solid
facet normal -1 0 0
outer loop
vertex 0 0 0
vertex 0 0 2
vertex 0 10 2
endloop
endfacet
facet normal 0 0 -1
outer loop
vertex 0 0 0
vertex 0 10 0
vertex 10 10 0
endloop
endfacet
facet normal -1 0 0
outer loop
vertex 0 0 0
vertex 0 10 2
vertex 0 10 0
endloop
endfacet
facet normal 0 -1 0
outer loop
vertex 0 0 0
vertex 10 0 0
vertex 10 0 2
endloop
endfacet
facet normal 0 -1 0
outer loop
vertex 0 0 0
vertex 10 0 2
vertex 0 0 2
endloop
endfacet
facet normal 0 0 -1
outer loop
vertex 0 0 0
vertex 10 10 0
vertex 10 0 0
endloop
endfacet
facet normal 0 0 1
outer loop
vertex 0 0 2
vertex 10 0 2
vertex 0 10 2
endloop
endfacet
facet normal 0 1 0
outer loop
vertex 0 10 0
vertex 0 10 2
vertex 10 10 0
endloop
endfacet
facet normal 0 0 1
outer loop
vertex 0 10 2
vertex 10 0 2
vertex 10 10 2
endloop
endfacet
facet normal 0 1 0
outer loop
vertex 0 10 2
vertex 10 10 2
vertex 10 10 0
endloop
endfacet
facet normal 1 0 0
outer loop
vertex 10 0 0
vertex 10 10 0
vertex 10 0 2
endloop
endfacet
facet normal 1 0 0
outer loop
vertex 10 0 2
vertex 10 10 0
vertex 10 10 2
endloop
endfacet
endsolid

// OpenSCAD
/* Warning, this is a very basic generator with a lot of approximation 
input data : [PQFP, U9X, 10x10x2.0mm, 52, , A, C04-00326A]
generated by com.zoubworld.electronics.cad.model3d.Basic
Date : Sun Feb 15 10:50:48 CET 2026
*/

//body
color("black")
translate([0,0,0])
cube([10.0,10.0,2.0], center=false);
